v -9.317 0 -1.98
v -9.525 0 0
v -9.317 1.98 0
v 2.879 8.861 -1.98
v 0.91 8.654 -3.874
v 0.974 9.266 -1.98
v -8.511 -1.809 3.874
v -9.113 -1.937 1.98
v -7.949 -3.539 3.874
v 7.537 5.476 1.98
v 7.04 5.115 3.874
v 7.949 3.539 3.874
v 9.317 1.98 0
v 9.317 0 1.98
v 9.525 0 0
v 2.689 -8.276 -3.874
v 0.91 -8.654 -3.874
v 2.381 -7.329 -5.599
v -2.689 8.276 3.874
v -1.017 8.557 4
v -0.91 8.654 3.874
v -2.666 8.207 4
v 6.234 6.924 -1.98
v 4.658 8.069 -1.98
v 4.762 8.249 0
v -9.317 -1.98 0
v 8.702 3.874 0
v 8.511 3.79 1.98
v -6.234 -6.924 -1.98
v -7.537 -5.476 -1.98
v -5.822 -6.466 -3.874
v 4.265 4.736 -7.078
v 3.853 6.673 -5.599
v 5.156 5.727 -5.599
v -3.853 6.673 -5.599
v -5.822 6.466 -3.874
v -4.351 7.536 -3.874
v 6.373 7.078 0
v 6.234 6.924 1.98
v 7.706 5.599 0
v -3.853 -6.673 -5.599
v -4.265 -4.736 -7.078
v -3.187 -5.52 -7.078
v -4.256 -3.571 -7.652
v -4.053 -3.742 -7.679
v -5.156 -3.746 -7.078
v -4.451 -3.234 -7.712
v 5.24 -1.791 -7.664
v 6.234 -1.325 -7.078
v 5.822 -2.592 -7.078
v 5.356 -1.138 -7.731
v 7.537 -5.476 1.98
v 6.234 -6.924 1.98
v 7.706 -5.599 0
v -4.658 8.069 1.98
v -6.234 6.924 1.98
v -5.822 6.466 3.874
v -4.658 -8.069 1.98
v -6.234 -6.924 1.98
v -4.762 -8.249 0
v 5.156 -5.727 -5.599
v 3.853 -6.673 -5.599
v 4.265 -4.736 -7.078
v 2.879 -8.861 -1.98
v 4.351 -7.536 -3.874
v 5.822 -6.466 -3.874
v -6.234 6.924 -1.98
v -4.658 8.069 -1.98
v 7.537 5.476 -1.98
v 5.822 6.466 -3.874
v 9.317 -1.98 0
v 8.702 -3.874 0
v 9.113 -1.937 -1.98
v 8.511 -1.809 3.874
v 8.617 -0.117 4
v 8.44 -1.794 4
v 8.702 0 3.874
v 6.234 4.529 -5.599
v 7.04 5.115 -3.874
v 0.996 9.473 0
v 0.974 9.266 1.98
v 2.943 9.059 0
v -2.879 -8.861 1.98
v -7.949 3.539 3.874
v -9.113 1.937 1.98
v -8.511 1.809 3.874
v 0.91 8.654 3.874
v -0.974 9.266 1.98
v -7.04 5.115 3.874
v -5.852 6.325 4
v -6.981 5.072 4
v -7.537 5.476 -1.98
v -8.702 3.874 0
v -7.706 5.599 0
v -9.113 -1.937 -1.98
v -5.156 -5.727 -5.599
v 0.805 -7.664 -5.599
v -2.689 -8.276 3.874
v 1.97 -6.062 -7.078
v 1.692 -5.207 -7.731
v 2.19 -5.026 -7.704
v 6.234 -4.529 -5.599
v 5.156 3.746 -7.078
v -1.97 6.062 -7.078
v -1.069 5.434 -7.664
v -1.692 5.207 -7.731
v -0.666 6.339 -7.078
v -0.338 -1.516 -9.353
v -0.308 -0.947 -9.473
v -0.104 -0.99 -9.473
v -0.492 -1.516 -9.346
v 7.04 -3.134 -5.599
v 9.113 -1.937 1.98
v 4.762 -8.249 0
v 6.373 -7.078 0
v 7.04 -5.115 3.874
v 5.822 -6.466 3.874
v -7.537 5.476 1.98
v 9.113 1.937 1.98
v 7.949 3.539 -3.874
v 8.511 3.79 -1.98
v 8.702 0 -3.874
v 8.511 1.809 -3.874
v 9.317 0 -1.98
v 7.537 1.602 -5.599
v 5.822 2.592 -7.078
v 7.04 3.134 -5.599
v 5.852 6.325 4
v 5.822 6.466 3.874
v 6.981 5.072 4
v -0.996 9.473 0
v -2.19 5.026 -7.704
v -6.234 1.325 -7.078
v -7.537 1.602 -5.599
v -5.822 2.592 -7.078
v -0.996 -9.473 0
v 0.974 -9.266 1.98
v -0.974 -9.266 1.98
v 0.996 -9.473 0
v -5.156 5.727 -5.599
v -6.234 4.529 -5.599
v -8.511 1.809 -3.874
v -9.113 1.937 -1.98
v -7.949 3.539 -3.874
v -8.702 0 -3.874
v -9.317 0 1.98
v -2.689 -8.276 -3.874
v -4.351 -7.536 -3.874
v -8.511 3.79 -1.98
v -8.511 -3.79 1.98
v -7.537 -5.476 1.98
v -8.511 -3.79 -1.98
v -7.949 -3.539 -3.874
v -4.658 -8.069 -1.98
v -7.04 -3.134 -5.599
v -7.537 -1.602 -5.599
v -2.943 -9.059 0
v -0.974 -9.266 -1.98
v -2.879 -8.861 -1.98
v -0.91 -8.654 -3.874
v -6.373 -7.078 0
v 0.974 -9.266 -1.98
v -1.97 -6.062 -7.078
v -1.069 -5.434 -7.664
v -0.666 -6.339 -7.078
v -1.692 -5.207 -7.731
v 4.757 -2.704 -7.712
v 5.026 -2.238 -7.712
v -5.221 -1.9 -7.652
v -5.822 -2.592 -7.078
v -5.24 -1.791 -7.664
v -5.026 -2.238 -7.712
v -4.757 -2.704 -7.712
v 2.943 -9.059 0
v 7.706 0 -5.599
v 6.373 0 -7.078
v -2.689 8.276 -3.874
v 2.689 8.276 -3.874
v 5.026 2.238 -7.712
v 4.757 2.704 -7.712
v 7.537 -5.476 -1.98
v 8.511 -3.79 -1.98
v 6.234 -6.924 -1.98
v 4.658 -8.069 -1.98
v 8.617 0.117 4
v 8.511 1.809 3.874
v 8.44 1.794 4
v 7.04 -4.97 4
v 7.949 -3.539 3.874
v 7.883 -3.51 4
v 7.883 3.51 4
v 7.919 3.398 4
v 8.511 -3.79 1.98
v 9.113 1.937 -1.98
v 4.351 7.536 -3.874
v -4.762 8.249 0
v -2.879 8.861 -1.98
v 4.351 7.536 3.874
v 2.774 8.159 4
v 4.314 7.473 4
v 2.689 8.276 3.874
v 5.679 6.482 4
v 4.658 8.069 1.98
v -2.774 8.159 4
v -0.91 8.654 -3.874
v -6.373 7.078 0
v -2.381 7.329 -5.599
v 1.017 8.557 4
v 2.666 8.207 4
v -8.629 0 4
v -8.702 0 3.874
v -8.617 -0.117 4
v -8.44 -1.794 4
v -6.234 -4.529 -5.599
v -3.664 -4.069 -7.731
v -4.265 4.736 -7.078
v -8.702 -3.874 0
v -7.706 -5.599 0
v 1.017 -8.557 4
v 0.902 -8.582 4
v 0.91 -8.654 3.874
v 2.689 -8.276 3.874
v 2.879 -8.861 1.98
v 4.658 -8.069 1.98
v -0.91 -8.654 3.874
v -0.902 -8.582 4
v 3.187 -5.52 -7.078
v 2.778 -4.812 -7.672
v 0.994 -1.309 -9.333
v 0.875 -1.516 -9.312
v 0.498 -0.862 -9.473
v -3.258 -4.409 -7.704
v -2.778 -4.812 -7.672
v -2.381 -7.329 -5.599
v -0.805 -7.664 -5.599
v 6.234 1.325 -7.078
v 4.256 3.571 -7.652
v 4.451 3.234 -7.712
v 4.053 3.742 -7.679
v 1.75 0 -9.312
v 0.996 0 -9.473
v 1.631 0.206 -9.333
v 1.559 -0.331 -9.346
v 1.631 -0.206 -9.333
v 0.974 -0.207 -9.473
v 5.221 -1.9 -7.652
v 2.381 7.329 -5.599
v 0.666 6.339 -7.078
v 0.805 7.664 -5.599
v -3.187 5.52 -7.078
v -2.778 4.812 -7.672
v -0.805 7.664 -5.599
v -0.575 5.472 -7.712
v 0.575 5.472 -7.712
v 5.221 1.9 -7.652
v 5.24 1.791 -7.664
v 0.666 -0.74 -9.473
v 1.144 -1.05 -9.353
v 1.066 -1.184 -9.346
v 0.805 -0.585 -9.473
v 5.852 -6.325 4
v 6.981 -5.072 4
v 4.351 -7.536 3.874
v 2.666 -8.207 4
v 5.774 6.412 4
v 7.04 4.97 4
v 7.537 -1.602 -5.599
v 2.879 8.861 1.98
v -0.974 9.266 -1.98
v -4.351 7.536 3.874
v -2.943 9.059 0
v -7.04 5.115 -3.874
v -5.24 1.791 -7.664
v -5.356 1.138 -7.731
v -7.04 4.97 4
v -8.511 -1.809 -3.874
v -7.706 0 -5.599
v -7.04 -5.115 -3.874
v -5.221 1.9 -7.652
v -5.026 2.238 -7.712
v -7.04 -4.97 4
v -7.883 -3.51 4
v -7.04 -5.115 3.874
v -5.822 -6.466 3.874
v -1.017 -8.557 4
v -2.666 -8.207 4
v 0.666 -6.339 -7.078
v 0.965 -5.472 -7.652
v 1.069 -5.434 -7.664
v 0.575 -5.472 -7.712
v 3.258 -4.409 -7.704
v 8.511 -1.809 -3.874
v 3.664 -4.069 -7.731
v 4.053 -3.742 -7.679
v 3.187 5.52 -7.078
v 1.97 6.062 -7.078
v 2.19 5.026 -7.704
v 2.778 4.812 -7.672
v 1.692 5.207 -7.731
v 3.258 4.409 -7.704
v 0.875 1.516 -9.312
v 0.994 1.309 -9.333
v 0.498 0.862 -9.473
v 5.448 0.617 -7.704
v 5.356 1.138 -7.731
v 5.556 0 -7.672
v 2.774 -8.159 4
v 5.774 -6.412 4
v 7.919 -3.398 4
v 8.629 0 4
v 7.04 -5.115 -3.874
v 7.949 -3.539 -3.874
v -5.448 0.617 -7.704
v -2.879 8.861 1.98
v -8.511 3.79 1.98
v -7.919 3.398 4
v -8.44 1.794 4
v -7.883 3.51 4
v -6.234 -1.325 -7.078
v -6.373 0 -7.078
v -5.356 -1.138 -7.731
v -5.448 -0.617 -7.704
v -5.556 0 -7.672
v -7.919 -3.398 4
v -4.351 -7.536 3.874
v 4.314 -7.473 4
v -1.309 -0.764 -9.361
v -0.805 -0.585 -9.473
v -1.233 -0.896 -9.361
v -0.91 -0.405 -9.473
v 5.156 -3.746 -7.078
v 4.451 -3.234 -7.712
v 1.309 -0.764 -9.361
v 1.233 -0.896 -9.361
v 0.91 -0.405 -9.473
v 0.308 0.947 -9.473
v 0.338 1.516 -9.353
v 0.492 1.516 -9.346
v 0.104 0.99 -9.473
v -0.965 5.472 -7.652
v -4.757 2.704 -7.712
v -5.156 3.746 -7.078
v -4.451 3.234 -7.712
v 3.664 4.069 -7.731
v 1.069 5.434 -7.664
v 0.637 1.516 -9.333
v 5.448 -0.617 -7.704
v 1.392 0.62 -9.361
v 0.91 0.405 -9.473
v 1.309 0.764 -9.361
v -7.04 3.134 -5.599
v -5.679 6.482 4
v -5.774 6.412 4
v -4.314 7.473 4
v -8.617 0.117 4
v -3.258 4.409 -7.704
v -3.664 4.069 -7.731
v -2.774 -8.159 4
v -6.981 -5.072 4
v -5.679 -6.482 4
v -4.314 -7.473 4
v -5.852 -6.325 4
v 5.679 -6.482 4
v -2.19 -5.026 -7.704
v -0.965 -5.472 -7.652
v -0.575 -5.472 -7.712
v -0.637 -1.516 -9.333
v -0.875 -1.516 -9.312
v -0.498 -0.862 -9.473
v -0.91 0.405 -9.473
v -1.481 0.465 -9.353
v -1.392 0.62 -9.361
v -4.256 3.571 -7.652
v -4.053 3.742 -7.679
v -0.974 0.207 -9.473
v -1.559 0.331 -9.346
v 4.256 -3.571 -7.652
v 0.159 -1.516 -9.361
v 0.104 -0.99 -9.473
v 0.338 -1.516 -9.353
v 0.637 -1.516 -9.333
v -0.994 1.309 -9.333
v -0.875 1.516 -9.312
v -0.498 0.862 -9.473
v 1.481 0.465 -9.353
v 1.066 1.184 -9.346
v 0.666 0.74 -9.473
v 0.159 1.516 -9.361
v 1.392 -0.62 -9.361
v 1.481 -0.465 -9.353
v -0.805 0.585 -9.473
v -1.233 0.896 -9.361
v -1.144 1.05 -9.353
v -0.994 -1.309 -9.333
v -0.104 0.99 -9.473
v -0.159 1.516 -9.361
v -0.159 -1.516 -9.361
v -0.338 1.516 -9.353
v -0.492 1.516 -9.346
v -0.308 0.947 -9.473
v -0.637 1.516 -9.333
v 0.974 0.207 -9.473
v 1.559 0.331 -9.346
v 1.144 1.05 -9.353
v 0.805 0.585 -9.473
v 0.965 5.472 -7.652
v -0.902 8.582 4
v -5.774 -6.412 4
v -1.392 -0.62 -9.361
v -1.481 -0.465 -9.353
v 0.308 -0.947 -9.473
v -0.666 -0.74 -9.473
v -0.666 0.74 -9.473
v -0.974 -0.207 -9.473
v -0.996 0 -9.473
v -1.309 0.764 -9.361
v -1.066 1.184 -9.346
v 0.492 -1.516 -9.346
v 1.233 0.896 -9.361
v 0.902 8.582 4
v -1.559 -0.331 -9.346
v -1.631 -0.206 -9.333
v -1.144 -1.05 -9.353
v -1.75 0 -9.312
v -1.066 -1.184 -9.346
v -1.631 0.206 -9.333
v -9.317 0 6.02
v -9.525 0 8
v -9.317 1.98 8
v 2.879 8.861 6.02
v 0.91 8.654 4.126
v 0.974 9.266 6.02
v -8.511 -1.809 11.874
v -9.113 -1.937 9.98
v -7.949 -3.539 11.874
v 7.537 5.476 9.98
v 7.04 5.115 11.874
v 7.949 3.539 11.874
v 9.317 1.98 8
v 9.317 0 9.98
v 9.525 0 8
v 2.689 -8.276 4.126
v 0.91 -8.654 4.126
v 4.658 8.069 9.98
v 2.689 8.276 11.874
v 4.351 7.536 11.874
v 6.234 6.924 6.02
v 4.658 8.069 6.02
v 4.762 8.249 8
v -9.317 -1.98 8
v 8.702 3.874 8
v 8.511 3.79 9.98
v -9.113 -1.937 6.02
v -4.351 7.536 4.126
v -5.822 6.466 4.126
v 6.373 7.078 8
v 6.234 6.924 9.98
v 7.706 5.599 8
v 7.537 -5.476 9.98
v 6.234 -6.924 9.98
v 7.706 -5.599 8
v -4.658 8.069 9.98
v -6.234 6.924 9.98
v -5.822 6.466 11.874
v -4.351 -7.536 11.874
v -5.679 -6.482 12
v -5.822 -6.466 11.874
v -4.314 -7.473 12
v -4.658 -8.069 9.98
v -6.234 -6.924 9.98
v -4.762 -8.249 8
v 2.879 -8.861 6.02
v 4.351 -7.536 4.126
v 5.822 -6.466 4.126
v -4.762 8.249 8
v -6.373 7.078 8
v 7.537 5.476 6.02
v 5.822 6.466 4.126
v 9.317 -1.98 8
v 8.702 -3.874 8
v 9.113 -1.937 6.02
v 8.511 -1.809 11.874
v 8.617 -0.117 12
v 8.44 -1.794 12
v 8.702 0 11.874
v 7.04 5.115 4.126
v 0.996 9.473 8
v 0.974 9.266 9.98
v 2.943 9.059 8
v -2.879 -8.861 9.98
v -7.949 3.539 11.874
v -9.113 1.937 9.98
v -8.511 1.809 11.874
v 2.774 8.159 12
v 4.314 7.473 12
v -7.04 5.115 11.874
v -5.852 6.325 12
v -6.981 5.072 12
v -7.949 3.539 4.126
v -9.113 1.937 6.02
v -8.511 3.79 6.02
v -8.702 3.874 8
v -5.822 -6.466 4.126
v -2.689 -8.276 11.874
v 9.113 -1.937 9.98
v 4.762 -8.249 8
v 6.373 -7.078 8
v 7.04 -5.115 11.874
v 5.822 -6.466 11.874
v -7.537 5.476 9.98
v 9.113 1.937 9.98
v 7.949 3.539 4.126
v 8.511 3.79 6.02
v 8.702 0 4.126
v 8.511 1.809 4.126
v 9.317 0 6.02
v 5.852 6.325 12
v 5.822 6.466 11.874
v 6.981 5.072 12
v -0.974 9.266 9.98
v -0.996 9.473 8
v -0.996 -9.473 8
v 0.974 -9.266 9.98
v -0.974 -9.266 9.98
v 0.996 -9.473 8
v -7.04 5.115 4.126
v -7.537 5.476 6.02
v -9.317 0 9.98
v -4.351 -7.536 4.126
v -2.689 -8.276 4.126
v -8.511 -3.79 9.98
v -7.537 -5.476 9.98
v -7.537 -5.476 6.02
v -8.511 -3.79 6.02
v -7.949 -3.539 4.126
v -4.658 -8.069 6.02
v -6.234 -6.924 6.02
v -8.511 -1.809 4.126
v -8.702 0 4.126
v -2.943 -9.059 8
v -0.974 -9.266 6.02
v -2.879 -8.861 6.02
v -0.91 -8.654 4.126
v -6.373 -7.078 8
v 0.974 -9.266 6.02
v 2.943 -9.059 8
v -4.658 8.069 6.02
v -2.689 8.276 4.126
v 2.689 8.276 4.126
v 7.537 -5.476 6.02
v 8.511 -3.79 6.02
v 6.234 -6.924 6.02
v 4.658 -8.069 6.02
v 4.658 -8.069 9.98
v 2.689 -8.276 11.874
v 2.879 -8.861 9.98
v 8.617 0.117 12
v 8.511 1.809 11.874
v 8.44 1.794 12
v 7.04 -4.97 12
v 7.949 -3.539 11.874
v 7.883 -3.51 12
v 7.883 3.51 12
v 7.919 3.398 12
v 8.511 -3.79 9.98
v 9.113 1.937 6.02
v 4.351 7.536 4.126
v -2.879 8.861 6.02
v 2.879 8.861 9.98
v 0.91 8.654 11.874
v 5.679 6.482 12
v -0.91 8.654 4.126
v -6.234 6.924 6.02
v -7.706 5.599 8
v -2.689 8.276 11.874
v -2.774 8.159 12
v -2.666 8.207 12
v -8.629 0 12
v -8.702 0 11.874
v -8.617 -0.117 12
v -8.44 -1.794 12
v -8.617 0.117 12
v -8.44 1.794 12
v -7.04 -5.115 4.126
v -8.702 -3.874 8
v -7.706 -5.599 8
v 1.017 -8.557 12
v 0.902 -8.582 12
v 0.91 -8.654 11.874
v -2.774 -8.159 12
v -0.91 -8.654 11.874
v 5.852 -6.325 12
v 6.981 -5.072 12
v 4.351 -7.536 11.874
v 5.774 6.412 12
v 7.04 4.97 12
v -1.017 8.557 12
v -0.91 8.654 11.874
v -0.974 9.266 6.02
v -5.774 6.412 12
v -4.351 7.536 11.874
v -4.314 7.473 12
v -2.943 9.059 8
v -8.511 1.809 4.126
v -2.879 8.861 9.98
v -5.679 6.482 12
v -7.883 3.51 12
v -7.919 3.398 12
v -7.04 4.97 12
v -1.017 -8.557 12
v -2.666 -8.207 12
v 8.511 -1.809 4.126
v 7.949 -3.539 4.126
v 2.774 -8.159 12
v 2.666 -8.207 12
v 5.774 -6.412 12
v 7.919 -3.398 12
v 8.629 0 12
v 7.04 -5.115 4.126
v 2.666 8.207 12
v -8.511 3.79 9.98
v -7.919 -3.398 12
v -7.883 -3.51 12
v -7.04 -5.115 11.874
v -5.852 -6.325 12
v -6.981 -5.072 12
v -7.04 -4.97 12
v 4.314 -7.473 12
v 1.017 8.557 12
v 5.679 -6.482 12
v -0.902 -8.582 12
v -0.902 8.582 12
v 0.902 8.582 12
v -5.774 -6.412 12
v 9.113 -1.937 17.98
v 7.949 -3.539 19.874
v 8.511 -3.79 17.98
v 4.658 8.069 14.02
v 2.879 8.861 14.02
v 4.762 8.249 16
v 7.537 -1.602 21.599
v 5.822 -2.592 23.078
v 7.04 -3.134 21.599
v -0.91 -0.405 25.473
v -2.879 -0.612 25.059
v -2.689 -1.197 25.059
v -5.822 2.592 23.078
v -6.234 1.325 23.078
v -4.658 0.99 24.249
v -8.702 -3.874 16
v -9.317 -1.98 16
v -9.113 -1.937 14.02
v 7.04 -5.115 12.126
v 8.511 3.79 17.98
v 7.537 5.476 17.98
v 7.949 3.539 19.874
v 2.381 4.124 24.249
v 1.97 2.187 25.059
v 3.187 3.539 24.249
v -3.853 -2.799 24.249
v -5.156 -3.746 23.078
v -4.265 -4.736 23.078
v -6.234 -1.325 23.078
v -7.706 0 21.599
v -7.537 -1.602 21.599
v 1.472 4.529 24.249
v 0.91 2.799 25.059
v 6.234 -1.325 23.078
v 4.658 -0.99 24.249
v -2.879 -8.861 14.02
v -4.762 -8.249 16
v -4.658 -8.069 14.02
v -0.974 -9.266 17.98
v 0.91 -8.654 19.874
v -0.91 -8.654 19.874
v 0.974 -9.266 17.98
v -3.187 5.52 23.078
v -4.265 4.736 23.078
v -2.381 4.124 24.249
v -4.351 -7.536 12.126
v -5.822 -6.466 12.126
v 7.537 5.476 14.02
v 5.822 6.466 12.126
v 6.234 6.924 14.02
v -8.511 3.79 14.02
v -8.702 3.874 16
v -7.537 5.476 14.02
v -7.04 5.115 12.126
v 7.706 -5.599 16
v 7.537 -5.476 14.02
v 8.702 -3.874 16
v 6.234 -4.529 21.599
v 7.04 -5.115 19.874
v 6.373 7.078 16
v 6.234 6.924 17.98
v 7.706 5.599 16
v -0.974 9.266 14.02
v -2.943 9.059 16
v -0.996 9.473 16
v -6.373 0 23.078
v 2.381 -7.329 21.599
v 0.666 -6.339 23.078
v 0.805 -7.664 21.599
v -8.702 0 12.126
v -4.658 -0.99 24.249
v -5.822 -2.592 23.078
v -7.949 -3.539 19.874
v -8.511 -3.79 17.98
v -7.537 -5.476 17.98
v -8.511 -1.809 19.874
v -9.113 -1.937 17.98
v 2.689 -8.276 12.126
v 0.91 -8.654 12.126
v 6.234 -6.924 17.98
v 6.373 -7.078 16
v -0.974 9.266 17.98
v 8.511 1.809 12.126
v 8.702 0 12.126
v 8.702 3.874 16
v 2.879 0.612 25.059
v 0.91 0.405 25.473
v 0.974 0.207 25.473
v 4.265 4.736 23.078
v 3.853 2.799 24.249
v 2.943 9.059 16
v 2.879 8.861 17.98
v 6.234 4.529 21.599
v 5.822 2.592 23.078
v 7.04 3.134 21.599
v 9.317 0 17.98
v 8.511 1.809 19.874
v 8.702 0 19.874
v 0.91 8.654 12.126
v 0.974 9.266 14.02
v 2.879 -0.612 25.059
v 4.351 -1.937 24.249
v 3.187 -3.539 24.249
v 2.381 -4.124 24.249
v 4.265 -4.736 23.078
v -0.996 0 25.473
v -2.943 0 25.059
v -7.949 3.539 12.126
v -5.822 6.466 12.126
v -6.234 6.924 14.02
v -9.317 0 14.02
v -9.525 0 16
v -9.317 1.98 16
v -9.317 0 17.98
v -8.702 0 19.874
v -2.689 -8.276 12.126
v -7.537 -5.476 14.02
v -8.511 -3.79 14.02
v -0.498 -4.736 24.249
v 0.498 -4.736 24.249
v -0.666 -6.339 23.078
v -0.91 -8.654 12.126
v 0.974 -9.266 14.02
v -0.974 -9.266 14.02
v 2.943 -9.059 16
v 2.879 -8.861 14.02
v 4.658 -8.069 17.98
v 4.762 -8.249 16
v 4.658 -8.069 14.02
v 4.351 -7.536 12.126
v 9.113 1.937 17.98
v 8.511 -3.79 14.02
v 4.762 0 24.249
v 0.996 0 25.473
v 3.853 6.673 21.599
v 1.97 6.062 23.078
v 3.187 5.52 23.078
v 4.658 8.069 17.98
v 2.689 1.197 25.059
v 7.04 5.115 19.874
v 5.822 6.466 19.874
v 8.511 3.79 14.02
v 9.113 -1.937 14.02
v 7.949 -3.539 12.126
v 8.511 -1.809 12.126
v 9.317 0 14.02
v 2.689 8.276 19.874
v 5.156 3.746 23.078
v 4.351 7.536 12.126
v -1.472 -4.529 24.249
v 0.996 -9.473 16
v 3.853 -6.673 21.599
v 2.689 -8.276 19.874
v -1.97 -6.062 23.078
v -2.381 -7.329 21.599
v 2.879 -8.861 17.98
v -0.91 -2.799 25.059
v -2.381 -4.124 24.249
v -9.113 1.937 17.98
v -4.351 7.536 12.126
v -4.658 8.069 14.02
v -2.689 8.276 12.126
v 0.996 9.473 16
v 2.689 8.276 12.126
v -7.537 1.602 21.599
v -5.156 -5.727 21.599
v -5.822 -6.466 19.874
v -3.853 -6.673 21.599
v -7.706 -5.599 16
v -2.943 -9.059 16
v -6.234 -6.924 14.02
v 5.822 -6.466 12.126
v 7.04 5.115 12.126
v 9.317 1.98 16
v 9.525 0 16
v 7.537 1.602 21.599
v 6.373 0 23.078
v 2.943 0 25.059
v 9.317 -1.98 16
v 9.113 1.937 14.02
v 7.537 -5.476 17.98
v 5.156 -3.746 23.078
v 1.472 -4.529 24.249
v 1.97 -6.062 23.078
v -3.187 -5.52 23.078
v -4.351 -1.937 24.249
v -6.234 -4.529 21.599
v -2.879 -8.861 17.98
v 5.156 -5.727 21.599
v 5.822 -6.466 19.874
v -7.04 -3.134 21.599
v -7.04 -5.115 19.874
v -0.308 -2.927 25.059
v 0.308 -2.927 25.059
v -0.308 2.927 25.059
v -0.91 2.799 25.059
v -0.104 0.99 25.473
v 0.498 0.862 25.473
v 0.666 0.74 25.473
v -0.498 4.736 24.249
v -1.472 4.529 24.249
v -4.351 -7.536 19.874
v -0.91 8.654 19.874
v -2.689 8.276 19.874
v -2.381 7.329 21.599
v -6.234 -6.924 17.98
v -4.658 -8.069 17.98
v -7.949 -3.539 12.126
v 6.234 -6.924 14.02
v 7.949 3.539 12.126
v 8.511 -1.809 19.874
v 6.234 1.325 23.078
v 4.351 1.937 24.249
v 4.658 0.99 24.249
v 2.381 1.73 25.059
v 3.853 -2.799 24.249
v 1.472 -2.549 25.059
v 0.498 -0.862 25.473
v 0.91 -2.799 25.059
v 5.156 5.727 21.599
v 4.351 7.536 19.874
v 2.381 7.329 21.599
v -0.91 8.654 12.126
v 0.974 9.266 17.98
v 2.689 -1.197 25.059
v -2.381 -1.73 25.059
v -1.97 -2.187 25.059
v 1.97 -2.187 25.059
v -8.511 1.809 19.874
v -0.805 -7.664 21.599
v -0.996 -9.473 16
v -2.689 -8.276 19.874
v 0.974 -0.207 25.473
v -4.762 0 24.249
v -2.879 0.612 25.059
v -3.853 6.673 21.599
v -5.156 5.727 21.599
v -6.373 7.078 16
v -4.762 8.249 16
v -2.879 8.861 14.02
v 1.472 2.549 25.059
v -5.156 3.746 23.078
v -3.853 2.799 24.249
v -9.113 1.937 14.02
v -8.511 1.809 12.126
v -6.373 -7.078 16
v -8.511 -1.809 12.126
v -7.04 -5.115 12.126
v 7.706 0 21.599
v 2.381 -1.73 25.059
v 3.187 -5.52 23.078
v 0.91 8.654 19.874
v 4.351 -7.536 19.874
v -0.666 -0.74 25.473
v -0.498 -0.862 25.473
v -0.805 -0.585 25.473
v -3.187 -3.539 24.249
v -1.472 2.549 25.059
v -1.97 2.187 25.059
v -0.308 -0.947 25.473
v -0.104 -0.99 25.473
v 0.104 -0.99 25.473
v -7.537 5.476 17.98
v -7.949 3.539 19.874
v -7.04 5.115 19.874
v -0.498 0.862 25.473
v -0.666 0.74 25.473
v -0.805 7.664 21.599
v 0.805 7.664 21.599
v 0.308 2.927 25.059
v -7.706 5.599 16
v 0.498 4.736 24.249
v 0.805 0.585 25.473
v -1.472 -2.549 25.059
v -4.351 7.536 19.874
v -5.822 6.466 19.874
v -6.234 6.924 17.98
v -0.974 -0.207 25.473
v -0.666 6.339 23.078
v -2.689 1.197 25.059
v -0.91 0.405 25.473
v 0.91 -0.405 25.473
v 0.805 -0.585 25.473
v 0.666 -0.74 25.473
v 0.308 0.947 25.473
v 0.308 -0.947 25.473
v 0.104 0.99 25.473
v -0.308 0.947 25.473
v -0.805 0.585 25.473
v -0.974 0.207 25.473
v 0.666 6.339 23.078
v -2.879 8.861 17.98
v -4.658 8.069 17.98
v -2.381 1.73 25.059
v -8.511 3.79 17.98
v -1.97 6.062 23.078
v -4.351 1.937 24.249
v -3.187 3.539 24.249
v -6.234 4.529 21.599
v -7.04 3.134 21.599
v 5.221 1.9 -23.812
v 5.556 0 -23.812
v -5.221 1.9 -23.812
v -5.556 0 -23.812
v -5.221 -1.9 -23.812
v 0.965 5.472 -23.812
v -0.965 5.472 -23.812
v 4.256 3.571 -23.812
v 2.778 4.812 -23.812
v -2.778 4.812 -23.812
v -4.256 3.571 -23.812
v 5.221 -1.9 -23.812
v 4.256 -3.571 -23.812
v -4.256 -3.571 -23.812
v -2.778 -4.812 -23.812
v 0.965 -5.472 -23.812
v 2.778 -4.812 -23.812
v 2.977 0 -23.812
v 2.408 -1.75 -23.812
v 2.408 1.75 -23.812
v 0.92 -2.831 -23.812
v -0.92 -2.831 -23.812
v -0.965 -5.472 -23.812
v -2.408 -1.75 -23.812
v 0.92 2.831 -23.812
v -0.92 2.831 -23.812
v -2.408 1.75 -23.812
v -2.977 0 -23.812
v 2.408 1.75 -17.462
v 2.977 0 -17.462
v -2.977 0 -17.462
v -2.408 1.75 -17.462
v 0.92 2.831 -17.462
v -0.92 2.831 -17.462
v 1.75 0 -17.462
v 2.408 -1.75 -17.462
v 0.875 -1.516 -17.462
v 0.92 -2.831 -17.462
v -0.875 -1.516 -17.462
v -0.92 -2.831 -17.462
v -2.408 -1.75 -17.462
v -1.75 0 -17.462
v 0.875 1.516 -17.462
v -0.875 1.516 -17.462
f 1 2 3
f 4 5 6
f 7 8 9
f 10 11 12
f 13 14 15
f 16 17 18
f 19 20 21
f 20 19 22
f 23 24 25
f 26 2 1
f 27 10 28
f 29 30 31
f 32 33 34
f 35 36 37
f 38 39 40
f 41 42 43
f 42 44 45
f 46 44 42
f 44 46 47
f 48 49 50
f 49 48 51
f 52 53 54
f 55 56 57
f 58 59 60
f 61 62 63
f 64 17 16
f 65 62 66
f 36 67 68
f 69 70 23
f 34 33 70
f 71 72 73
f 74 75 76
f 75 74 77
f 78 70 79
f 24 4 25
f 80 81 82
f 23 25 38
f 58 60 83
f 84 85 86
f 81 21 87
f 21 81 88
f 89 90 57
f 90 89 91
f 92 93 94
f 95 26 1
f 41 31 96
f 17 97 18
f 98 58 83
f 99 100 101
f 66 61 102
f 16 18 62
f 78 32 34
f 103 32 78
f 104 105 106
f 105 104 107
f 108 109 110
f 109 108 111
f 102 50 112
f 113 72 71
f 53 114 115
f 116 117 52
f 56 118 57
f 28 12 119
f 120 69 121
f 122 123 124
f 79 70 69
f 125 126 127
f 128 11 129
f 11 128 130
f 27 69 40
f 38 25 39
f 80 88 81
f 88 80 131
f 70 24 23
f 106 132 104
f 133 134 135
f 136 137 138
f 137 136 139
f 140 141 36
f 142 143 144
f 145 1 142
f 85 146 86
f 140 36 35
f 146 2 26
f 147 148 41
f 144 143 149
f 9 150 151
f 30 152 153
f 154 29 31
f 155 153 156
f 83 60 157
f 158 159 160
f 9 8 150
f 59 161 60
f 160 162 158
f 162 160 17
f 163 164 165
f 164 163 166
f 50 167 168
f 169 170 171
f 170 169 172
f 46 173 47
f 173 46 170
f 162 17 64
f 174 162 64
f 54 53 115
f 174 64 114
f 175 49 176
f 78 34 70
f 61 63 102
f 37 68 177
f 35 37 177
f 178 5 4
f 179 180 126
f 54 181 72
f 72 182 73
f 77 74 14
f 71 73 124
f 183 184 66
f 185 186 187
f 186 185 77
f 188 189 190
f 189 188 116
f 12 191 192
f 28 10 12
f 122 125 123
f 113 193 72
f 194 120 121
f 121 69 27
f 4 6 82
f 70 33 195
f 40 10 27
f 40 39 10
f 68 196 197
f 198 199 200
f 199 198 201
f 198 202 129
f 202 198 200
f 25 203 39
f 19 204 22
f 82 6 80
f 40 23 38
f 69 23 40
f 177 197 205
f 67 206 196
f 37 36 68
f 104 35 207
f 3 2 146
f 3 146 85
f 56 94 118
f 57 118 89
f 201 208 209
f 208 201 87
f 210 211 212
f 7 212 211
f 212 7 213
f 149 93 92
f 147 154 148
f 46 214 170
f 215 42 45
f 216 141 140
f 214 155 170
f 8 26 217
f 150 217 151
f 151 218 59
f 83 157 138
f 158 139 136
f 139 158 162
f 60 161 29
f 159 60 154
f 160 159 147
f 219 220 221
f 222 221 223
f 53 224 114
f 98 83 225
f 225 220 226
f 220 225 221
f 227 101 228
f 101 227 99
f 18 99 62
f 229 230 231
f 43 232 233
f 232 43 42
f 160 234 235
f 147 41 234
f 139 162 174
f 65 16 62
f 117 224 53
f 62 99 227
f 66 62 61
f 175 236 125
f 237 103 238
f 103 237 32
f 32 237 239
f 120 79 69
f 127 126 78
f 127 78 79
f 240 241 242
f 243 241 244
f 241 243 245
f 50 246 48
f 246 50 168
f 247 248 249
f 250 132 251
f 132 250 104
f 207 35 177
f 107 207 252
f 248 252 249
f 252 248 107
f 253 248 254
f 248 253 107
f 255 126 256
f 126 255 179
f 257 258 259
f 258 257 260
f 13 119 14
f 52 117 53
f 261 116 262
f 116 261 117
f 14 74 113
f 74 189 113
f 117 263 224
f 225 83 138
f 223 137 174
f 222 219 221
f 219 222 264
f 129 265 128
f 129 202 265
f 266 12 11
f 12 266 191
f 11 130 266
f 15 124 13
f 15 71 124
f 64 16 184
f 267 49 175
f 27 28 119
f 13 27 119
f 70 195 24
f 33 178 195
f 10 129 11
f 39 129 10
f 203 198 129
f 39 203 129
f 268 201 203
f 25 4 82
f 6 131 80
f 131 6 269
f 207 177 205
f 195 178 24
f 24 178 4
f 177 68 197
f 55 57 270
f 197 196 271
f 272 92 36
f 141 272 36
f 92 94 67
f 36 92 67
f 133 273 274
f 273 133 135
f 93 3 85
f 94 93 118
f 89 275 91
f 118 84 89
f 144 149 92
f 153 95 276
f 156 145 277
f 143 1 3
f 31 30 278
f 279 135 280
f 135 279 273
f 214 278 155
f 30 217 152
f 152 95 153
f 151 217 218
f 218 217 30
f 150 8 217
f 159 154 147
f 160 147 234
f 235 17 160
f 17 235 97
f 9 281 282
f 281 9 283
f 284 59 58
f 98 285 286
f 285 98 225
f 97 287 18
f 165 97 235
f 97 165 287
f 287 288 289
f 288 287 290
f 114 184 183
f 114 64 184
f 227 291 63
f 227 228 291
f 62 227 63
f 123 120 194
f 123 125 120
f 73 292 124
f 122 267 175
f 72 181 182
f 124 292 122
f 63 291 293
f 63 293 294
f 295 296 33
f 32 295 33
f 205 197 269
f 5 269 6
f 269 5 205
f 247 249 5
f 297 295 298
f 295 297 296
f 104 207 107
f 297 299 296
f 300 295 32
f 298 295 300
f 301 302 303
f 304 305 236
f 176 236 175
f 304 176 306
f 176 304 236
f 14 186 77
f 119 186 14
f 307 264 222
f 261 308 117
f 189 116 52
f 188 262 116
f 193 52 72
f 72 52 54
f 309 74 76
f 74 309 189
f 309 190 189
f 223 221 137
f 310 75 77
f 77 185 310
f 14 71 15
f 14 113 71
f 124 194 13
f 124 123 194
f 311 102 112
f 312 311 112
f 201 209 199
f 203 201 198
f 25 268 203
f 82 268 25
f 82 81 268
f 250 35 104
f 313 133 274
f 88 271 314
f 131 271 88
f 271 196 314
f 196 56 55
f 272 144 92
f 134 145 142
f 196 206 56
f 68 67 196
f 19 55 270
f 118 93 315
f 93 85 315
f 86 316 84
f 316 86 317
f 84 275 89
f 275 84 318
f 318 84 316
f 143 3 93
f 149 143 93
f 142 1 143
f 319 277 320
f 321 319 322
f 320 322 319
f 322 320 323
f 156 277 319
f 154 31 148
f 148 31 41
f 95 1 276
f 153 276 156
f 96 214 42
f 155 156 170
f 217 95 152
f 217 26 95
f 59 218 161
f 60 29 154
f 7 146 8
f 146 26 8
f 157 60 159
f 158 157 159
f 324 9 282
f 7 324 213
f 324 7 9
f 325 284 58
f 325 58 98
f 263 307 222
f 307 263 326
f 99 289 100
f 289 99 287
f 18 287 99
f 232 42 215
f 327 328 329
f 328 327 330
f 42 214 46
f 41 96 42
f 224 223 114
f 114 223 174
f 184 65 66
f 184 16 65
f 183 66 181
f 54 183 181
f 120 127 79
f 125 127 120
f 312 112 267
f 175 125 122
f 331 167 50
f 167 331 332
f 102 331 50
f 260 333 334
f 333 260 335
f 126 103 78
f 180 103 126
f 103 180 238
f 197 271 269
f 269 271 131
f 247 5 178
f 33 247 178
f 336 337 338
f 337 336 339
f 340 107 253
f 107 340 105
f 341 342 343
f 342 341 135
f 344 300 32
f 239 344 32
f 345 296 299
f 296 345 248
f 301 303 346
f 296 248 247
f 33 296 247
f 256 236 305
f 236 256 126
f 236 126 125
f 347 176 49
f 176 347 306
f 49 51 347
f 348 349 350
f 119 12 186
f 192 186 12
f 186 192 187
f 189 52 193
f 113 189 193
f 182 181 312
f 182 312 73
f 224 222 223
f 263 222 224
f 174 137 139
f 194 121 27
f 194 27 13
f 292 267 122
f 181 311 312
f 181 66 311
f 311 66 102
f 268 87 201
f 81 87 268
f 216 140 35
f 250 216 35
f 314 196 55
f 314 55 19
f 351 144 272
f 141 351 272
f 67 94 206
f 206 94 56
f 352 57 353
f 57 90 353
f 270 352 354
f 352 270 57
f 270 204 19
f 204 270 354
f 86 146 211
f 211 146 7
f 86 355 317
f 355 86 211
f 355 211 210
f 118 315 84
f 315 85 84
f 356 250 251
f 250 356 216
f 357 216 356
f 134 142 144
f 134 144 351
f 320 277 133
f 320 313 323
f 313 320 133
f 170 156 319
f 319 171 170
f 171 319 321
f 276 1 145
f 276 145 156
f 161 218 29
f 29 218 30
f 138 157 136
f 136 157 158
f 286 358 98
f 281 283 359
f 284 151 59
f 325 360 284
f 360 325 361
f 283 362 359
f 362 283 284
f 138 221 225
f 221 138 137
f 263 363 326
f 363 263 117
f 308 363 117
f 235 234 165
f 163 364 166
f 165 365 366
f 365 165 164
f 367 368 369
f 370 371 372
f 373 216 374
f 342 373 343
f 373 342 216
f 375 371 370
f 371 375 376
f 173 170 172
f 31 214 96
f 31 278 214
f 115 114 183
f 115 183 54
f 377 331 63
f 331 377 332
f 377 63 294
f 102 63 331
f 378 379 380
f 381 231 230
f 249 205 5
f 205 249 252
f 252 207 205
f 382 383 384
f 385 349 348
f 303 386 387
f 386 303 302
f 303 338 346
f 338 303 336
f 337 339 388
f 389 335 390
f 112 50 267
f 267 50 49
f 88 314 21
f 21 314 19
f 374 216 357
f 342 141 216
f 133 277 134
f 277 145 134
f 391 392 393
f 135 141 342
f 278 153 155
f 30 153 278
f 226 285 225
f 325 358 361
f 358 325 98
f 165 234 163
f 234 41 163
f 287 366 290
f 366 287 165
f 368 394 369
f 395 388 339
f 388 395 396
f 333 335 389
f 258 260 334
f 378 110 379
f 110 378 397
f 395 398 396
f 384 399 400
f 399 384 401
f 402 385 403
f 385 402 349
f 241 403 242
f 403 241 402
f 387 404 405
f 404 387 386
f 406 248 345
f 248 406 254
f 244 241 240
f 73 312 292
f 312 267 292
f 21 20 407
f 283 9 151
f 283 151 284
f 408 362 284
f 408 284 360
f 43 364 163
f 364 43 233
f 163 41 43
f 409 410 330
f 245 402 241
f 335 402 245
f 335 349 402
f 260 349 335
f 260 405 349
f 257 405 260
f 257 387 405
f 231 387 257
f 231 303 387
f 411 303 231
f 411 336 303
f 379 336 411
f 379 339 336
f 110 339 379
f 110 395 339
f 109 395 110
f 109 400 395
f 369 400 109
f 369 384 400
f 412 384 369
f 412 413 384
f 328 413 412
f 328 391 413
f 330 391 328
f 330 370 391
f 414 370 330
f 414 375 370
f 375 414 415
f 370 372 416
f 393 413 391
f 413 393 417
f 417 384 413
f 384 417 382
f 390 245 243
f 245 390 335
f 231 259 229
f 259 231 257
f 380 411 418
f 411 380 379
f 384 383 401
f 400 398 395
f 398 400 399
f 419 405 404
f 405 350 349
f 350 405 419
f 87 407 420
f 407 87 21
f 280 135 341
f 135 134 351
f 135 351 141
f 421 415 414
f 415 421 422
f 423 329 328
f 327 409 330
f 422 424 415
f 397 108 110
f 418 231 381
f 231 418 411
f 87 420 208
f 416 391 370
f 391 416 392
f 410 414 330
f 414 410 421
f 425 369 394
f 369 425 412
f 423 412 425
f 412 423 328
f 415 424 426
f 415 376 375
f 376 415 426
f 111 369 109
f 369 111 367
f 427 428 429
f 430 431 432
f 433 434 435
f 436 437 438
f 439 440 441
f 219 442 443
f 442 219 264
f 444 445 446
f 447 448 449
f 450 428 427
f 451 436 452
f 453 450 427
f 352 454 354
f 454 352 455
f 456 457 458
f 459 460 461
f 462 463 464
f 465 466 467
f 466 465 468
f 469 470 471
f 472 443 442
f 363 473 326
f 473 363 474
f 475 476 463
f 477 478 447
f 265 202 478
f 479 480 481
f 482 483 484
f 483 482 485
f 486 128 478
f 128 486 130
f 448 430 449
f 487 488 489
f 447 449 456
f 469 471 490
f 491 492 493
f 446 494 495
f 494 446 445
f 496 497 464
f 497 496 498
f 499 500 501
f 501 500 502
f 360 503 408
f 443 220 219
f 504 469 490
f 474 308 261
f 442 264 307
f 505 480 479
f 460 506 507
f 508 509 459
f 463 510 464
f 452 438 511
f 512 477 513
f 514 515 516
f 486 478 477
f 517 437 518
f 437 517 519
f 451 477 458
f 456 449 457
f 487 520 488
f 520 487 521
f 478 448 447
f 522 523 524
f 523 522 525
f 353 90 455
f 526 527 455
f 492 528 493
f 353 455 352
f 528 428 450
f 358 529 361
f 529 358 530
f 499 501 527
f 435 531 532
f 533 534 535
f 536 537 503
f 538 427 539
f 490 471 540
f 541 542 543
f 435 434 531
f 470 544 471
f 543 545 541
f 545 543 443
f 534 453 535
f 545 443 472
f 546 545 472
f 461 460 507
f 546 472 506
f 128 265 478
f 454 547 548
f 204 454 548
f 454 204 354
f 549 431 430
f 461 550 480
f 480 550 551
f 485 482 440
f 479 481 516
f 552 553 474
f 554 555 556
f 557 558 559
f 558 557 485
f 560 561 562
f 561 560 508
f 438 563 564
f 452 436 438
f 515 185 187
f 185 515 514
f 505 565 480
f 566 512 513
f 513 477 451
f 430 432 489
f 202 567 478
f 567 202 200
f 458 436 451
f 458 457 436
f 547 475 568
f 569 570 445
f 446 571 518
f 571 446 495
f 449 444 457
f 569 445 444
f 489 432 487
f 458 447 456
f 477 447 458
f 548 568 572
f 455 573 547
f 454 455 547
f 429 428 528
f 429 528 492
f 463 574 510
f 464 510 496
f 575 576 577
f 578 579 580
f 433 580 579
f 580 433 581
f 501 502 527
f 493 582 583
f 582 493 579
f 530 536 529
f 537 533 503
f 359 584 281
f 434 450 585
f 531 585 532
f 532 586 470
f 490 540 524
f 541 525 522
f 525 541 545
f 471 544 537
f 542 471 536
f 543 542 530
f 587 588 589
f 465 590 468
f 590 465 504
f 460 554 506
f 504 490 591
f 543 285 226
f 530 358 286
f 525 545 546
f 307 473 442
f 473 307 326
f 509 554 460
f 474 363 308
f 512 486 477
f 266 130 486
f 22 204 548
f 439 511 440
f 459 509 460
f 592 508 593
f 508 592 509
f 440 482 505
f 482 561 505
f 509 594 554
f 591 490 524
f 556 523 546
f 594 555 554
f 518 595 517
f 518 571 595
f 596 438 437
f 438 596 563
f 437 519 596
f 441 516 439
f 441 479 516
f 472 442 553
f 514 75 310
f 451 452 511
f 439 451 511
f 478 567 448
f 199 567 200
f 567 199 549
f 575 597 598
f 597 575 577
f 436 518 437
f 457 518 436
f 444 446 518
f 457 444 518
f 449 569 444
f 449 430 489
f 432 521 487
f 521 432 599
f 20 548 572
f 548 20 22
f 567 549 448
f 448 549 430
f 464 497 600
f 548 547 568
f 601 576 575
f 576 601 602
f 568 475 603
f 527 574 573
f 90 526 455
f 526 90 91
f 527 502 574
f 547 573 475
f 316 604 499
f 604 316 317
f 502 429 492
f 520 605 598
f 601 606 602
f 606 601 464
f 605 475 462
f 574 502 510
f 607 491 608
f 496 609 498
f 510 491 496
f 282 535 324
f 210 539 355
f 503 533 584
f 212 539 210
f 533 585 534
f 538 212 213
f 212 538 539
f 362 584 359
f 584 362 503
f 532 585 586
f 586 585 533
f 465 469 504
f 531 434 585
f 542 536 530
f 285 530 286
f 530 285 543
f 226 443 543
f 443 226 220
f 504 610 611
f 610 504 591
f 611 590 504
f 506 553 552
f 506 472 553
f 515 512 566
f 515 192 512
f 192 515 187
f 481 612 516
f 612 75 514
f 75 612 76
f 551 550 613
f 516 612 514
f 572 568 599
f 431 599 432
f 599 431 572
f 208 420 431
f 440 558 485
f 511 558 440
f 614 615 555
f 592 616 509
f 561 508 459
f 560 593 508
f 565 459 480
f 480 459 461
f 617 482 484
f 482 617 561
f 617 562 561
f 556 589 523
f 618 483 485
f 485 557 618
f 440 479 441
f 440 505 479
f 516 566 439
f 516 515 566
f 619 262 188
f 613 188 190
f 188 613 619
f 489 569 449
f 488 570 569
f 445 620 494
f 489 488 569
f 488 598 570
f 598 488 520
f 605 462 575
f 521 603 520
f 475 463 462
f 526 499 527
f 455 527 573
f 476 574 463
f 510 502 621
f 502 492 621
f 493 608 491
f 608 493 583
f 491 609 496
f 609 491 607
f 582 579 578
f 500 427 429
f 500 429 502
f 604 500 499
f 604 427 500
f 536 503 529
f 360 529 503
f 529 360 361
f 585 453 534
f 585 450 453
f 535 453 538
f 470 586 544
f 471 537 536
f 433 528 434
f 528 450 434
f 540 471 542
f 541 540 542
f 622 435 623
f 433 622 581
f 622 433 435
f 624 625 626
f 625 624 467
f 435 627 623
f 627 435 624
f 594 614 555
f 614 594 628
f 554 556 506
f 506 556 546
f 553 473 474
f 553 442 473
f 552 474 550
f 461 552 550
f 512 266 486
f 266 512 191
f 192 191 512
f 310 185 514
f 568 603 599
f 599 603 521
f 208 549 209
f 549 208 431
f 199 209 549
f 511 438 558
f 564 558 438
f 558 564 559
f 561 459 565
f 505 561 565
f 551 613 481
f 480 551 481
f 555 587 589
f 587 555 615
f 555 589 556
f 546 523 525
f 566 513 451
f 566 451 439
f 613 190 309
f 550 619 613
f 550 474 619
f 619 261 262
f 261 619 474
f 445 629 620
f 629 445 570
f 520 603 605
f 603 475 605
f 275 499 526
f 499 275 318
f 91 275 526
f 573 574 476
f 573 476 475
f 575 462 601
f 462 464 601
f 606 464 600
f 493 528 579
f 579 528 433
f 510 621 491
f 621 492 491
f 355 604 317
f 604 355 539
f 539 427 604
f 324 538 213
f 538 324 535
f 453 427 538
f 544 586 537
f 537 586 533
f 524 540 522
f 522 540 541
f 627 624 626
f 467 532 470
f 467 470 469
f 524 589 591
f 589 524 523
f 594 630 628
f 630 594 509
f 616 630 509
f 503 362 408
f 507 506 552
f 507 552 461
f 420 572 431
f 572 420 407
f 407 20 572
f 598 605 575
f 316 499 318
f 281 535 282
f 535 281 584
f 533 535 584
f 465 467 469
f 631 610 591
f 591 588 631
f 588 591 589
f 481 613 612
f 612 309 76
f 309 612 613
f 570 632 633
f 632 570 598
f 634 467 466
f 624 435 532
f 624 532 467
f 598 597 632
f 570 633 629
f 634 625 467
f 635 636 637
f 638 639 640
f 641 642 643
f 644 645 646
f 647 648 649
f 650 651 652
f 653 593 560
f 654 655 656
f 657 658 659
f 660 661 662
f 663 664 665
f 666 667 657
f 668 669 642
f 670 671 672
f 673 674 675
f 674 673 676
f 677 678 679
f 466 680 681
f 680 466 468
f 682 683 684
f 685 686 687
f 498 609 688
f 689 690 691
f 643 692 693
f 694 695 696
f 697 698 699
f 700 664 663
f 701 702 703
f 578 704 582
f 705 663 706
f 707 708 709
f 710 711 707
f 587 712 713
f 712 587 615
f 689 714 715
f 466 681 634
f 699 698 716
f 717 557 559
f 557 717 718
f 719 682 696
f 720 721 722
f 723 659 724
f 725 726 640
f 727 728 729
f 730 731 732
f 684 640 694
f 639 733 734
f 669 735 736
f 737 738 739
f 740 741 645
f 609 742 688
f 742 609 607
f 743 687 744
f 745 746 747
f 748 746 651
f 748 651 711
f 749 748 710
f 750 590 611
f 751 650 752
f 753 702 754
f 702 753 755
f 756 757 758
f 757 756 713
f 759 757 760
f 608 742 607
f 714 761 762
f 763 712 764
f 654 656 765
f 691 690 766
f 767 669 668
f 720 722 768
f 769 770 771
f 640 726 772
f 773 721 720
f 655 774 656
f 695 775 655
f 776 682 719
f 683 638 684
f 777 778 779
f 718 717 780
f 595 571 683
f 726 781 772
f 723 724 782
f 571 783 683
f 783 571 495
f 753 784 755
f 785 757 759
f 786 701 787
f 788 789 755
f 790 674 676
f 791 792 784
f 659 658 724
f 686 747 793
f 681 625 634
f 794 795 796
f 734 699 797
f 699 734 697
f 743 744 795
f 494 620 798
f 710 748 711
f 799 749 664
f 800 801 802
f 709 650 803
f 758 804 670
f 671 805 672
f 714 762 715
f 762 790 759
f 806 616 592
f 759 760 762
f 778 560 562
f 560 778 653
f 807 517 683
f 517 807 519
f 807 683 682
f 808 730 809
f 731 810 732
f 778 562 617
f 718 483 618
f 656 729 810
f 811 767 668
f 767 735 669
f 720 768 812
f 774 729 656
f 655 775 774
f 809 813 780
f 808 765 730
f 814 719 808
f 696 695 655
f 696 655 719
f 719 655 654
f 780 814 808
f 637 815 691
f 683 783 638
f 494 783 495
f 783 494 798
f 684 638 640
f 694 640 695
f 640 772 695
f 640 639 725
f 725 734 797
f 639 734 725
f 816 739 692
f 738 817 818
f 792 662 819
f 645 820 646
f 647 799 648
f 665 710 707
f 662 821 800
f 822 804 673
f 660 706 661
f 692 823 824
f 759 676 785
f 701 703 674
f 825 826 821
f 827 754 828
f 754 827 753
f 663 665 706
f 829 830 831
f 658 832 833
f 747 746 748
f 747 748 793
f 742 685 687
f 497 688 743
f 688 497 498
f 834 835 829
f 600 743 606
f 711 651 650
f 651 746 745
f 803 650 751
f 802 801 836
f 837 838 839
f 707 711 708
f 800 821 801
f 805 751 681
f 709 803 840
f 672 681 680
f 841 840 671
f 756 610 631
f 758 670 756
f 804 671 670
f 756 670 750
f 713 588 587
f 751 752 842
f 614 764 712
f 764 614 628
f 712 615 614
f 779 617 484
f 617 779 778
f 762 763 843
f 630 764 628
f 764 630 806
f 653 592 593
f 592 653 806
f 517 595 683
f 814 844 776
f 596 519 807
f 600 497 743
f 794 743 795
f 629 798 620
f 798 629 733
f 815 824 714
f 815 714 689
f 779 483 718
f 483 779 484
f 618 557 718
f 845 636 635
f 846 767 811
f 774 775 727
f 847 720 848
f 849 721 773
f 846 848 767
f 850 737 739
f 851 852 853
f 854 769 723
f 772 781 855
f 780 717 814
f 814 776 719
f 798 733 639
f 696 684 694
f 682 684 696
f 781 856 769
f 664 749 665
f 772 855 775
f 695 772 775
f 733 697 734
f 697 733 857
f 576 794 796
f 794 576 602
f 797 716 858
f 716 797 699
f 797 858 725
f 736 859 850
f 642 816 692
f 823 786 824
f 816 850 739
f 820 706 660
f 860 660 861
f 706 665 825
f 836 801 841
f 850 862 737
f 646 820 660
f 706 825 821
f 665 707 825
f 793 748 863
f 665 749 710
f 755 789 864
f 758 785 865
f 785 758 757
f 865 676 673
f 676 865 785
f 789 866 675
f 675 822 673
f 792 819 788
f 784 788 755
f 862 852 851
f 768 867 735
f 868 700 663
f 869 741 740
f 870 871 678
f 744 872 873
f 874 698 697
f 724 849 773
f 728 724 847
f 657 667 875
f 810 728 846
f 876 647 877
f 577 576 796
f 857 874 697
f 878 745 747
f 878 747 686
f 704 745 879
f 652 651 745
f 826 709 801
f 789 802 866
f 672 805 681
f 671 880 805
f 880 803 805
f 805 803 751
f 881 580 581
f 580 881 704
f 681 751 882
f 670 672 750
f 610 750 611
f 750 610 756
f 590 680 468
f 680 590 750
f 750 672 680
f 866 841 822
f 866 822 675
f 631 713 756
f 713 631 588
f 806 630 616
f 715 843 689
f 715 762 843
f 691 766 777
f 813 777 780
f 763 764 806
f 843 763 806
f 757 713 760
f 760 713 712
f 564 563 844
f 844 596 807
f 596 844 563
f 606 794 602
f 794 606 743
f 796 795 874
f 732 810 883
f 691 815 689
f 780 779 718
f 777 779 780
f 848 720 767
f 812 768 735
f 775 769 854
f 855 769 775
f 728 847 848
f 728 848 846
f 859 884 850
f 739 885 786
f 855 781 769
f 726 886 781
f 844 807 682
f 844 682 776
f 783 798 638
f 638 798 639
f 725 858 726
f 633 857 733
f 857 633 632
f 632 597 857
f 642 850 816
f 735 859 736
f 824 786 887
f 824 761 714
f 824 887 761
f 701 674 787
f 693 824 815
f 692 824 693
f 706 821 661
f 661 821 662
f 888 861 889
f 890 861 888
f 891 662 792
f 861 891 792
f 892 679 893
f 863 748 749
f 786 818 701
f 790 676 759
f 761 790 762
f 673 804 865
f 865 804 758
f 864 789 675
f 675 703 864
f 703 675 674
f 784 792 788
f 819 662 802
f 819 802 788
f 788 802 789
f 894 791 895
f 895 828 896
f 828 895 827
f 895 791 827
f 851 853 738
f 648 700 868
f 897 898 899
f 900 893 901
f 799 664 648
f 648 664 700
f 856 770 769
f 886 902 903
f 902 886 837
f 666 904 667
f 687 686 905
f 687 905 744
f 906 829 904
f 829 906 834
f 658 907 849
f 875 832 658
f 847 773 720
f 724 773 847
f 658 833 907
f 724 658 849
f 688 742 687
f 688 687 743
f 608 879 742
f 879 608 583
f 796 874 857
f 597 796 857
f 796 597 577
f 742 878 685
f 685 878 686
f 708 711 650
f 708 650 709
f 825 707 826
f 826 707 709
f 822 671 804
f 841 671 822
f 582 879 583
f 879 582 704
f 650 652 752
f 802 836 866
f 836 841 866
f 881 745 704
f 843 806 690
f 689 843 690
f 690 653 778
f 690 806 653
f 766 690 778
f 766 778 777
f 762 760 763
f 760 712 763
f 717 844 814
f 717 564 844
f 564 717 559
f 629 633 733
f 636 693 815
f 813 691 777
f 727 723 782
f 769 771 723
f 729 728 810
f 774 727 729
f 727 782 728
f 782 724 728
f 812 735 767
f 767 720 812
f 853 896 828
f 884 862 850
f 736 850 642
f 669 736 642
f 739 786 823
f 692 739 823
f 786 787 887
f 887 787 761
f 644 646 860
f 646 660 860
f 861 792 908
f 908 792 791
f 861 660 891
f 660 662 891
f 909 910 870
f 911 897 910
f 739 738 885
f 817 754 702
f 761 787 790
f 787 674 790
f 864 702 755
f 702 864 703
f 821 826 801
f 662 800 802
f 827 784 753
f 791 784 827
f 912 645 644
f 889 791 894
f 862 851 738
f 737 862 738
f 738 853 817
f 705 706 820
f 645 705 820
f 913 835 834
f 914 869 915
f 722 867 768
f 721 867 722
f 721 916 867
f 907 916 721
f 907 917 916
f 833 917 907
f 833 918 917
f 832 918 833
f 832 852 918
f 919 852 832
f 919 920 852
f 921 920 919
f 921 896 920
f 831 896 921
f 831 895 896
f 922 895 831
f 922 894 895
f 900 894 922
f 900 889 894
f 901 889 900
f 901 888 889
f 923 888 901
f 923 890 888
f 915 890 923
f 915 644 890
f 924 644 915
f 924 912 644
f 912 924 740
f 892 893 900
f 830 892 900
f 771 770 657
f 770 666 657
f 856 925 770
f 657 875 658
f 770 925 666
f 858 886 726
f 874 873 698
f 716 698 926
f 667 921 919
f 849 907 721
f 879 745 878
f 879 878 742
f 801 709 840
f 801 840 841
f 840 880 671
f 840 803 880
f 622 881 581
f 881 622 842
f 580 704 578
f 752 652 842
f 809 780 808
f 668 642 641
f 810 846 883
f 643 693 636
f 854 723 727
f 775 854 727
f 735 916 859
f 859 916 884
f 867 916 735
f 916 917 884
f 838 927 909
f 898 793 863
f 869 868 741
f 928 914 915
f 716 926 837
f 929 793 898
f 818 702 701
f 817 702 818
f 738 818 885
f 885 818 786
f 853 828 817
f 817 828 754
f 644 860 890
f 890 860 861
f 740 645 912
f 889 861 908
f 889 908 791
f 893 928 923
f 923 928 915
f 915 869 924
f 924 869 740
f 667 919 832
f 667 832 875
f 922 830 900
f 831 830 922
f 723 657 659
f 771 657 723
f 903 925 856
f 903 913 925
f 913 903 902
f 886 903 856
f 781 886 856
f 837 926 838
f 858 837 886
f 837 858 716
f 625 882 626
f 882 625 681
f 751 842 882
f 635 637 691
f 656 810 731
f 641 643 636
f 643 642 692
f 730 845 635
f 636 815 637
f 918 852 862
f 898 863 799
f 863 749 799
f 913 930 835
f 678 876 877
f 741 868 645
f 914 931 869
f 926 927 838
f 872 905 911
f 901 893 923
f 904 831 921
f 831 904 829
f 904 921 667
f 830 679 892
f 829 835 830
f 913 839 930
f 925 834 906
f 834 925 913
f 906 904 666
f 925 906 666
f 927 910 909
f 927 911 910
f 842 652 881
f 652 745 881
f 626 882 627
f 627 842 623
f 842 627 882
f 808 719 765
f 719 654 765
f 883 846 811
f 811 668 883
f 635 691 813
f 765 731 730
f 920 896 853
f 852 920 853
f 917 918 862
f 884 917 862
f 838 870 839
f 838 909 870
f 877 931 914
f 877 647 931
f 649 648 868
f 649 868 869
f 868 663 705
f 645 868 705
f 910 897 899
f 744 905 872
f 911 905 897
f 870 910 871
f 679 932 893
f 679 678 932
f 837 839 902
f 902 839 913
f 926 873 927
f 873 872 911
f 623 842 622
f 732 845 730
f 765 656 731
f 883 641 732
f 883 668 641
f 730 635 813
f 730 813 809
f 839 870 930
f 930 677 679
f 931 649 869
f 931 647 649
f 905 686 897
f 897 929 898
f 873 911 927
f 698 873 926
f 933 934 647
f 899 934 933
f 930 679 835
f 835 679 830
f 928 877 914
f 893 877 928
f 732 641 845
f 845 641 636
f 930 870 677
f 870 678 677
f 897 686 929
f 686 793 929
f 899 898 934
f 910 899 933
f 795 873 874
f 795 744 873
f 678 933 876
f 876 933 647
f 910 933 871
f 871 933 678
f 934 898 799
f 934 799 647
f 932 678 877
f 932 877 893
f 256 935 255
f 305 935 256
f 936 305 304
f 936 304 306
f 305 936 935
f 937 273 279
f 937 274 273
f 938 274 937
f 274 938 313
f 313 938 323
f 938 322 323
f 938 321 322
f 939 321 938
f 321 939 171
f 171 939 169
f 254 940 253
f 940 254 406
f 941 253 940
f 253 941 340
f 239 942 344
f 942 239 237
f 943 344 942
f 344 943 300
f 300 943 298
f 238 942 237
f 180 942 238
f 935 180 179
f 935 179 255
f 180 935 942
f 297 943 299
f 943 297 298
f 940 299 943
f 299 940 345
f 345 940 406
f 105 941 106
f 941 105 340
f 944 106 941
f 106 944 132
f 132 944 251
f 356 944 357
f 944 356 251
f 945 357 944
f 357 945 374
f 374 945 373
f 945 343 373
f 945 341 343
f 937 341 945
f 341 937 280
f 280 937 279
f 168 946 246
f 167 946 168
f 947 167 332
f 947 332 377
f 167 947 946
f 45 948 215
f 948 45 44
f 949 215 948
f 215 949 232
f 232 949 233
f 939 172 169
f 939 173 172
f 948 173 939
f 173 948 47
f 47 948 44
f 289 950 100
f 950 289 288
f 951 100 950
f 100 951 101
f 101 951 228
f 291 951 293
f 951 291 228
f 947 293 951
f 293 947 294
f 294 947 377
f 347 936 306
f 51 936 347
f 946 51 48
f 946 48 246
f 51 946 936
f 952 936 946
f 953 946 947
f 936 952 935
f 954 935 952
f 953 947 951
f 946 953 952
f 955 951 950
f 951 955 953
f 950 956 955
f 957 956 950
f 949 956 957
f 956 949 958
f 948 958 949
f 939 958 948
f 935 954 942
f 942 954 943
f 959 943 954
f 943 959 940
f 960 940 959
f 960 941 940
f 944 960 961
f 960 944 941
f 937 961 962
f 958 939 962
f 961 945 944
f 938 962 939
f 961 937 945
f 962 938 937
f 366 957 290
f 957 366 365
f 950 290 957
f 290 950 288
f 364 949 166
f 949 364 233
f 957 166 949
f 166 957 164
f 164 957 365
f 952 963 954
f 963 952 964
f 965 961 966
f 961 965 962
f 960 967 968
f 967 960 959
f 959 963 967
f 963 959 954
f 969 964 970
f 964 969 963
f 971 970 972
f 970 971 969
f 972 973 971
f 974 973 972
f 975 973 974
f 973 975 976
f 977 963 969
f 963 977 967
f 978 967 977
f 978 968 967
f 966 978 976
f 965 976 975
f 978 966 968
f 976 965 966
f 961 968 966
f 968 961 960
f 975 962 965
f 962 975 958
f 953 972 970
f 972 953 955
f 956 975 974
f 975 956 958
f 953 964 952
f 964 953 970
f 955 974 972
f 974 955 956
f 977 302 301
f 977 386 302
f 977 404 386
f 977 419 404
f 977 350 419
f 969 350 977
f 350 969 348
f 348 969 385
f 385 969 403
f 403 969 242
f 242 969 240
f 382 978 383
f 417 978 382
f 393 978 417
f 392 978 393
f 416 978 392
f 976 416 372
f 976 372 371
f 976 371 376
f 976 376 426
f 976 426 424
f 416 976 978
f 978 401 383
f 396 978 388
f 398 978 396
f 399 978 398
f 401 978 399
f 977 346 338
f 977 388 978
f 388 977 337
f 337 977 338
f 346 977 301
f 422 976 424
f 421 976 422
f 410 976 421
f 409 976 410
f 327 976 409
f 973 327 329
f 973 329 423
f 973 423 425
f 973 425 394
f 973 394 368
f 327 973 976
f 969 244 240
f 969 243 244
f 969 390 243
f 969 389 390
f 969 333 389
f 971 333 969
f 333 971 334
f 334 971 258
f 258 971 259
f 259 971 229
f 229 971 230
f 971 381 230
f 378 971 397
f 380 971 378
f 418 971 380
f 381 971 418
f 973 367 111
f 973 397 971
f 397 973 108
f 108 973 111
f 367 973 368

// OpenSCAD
inch=25.4;

module index_pin_handle(handleD=3/4*inch,
			pinD=7/16*inch,

			pinLength=9/16*inch,
			threadD=3.5,
			hole=[15/64,1/4]*inch) {

     for (z=[0,1,2]*8) translate([0,0,z]) {
	       sphere(d=handleD);
	  }
     translate([0,0,-handleD/2-pinLength/2+2]) {
	  difference() {
	       cylinder(d=pinD, h=pinLength+4, center=true);
	       translate([0,0,-1-pinLength/2-2]) cylinder(d=hole[0], h=hole[1]+1);
	       cylinder(d=threadD, h=pinLength*4, center=true);
	       
	  }
     }

};

index_pin_handle();
